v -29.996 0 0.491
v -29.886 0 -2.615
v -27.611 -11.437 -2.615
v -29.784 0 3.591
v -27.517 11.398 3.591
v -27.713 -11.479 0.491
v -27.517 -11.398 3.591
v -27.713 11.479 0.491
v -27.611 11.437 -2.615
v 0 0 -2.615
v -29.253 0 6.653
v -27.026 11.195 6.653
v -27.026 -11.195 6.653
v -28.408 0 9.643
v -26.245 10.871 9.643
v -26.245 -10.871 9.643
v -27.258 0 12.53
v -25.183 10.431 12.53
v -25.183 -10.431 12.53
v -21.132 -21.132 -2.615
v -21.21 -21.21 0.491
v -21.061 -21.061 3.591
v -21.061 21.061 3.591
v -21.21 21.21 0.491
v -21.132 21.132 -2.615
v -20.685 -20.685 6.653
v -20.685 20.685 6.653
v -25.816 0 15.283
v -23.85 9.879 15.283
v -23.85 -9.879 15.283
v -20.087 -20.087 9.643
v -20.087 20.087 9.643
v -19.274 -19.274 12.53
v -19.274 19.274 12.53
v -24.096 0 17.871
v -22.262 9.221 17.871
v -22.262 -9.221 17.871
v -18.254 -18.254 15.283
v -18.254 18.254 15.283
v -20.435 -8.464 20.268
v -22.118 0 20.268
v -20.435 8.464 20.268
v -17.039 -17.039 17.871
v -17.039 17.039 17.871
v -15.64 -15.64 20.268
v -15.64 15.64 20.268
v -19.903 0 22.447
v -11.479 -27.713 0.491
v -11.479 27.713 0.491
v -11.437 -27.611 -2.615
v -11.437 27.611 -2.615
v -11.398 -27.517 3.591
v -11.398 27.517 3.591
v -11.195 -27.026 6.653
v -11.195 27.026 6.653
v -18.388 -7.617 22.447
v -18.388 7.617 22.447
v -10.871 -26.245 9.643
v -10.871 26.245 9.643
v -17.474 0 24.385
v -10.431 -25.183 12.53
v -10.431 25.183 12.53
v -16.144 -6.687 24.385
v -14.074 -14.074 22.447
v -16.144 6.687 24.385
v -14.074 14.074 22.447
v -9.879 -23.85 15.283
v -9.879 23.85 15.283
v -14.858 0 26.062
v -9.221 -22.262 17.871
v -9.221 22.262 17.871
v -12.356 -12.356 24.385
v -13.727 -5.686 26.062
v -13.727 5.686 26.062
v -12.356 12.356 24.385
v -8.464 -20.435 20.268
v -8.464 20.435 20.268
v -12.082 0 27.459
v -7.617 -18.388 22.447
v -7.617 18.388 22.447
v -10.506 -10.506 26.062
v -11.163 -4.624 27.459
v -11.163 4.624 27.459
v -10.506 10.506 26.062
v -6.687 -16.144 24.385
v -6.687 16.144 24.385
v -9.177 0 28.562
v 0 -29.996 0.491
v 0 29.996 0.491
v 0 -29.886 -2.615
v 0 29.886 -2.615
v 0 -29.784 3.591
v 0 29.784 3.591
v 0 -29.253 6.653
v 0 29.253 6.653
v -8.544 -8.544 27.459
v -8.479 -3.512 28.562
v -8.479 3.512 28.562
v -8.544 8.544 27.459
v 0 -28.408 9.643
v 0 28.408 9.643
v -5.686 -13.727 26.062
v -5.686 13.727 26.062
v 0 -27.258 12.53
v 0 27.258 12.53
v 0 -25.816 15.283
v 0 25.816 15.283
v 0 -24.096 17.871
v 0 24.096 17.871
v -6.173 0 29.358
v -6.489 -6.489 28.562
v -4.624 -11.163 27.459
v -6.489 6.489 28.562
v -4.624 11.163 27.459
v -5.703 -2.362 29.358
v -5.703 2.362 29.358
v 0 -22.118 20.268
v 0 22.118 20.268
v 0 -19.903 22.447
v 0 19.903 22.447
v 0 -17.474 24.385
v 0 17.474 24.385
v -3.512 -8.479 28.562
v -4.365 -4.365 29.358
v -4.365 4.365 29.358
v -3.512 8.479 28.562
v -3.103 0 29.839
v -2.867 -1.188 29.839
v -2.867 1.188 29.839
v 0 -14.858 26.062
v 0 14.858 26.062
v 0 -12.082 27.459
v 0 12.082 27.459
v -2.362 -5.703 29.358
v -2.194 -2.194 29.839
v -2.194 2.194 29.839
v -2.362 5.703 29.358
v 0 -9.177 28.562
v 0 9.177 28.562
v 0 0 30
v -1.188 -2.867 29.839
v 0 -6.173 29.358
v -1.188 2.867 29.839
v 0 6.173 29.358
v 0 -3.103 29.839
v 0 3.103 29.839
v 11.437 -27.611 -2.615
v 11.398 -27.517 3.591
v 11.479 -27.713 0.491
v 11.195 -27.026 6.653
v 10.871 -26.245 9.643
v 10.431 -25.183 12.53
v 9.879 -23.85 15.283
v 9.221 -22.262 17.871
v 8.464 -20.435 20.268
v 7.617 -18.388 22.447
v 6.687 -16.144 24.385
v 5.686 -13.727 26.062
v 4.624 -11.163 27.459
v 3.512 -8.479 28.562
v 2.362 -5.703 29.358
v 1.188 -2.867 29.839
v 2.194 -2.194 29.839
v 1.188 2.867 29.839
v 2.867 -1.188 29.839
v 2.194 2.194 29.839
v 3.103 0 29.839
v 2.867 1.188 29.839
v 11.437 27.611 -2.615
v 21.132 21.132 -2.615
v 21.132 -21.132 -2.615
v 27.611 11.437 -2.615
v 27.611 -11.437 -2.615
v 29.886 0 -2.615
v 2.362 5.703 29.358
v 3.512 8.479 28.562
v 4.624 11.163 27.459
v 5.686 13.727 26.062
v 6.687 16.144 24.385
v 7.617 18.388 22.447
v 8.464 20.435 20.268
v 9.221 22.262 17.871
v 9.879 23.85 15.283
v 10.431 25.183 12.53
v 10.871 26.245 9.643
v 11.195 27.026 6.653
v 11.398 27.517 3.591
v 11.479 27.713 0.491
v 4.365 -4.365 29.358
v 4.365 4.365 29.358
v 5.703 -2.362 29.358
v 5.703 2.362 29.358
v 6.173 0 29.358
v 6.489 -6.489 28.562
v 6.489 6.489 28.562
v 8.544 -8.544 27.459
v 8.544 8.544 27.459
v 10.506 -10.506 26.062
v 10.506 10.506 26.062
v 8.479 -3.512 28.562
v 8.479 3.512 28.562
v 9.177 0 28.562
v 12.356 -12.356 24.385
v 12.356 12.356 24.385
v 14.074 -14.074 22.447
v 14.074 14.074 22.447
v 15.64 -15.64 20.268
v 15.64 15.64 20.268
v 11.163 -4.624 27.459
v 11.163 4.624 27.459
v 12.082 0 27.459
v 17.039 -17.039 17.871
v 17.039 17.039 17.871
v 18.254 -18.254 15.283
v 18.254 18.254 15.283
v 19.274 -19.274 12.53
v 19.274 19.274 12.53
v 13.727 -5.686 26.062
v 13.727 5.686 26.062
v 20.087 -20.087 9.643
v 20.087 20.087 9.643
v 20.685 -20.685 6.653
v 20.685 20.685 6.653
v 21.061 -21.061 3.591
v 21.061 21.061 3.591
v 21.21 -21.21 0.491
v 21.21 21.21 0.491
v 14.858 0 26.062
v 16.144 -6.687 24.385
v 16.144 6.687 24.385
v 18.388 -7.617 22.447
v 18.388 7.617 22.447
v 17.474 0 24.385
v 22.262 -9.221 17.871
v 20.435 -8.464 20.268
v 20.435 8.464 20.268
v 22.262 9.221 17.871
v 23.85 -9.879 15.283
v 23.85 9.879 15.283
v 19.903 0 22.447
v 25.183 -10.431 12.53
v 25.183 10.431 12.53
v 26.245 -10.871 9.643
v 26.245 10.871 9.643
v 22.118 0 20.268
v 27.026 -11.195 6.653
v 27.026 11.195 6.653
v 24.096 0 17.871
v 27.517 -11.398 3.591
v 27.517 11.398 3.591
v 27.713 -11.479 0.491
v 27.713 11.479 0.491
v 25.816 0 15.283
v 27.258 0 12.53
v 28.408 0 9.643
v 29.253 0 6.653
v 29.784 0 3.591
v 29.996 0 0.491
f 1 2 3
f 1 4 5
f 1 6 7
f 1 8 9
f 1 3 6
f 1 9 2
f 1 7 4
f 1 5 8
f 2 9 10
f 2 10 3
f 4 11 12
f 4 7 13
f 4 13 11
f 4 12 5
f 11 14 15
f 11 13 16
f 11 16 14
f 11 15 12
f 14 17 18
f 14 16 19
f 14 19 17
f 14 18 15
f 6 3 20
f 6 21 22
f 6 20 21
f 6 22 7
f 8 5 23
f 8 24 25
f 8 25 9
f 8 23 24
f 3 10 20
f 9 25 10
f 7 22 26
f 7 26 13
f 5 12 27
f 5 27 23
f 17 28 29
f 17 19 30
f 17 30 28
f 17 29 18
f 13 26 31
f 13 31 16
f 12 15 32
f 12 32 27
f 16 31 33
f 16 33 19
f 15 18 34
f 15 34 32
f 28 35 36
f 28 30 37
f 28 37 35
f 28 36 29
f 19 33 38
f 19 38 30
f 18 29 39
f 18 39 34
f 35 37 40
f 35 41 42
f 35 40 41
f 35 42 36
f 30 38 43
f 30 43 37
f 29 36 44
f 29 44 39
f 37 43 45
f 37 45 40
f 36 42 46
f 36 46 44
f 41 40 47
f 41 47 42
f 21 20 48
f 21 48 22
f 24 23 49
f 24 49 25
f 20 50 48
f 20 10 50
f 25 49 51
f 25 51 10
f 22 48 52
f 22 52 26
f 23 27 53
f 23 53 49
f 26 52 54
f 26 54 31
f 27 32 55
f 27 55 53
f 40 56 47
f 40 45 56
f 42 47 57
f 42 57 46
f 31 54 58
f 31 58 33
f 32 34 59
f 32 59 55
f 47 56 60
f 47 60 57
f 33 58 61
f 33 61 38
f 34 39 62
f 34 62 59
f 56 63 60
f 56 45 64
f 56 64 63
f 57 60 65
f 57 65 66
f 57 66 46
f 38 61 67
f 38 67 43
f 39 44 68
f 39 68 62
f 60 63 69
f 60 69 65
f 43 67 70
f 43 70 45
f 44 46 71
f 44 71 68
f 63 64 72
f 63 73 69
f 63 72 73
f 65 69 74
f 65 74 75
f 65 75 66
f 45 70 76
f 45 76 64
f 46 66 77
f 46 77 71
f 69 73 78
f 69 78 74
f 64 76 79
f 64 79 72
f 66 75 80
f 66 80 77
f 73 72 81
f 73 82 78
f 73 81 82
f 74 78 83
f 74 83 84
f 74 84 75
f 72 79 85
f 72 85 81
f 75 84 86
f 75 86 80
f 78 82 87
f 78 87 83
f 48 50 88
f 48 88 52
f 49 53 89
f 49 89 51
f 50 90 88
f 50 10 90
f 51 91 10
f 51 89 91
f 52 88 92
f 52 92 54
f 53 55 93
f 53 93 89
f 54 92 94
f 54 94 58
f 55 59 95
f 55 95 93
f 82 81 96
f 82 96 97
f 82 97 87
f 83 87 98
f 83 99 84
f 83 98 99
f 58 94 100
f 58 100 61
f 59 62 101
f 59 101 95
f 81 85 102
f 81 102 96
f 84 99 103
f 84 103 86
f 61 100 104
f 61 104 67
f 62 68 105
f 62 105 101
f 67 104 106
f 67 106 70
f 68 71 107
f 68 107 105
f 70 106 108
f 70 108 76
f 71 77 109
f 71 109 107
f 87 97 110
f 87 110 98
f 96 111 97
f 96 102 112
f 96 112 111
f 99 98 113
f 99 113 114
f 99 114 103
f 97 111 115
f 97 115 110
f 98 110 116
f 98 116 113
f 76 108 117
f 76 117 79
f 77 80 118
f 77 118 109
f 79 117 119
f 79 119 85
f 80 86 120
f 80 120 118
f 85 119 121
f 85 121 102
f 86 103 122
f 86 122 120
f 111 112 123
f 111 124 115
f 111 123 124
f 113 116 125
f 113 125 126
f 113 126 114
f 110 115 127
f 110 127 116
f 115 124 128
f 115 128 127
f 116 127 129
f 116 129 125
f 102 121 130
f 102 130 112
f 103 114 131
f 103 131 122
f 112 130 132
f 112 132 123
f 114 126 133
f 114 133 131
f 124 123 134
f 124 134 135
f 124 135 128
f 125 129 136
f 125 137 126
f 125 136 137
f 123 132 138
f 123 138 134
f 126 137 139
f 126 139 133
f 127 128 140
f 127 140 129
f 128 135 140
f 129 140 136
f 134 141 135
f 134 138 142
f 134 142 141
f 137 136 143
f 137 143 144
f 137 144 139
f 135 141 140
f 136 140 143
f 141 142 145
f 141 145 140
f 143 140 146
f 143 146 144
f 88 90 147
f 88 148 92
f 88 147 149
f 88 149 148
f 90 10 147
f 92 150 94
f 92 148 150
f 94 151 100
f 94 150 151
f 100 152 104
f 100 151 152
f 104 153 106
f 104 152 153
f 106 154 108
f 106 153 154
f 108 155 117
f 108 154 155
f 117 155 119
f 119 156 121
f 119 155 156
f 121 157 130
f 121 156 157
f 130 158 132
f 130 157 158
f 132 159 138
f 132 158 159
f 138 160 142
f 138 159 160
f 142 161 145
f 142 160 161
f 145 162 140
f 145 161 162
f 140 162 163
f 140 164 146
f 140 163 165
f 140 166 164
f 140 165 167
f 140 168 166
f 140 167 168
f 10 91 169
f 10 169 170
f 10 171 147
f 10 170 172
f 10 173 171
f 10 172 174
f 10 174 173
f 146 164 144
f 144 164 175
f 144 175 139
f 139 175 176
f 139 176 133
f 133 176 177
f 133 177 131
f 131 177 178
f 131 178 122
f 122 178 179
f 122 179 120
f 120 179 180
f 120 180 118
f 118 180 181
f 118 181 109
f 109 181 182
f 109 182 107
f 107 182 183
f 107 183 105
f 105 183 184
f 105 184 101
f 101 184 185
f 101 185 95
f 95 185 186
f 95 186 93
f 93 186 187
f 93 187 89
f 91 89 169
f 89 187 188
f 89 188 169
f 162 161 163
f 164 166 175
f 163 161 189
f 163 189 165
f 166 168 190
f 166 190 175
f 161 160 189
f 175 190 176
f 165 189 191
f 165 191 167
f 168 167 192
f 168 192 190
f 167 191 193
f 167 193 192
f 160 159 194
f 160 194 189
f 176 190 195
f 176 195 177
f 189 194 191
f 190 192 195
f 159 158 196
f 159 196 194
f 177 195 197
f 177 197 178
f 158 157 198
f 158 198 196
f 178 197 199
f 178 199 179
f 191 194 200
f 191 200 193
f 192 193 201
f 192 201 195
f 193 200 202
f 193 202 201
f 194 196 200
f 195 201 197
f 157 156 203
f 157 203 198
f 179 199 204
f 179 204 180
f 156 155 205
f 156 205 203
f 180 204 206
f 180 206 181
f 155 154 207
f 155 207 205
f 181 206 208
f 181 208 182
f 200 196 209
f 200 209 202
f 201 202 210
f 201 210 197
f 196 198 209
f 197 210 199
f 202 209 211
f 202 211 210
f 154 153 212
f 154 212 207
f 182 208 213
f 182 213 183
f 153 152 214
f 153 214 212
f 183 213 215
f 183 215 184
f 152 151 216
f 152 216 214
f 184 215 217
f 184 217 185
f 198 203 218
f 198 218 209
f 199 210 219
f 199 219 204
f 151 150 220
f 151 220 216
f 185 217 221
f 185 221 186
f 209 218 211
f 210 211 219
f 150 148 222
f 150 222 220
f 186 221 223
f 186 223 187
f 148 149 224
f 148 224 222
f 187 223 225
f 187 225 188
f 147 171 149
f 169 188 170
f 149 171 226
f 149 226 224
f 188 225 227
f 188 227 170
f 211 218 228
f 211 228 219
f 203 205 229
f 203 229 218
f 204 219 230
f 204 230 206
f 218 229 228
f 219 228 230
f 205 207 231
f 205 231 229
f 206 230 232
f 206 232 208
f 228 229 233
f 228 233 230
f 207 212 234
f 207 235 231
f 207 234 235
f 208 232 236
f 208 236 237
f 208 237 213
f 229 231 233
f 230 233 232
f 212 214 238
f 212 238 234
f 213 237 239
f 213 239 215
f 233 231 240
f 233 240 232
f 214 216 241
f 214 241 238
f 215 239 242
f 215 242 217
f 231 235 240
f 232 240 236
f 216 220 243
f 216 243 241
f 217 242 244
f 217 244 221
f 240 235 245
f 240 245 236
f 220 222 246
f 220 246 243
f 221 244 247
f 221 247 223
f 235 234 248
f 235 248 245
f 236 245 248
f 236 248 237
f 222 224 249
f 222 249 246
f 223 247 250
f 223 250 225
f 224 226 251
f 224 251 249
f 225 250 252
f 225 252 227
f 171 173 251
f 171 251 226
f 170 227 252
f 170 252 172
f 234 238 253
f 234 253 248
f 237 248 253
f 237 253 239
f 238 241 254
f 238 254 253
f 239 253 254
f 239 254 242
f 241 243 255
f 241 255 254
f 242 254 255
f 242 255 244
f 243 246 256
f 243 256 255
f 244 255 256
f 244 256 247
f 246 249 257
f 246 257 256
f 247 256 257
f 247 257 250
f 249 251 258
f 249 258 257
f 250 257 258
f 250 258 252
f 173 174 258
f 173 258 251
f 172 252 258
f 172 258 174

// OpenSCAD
// Start: lazy_union
default_5_default_5();
// End: lazy_union

// Modules.

// 'PartMaterial undef-default - default 5.0'
module default_5_default_5() {
  // 'None : _combine_solids_and_holes'
  union() {
    // 'default : _combine_solids_and_holes'
    union() {
      // 'cage'
      %multmatrix(m=[[1.0, 0.0, 0.0, 0.0], [-0.0, -1.0, -0.0, -0.0], [-0.0, -0.0, -1.0, -0.0], [0.0, 0.0, 0.0, 1.0]]) {
        // 'cage'
        color(c=[0.0, 1.0, 0.35, 0.4]) {
          // 'cage : _combine_solids_and_holes'
          union() {
            // 'cage'
            sphere(r=30.0, $fn=16);
          }
        }
      }
      // 'cap'
      multmatrix(m=[[0.0, -1.0, 0.0, 0.0], [1.0, 0.0, -6.123233995736766e-17, 0.0], [6.123233995736766e-17, 0.0, 1.0, 0.0], [0.0, 0.0, 0.0, 1.0]]) {
        // 'cap : _combine_solids_and_holes'
        union() {
          // 'cap'
          polyhedron(points=[[0.0, 0.0, 30.0], [3.103306385869395, 0.0, 29.839059795432938], [6.173316320767047, 0.0, 29.35796596502815], [9.177090602896605, 0.0, 28.56188033141773], [12.082400695762118, 0.0, 27.459344373583413], [14.858074519318485, 0.0, 26.06218758236497], [17.474330906034066, 0.0, 24.385400537748456], [19.903099133370333, 0.0, 22.446974069732278], [22.118320104303724, 0.0, 20.26770622846981], [24.09622594441935, 0.0, 17.870979134773002], [25.81559501568237, 0.0, 15.28250810522525], [27.257979610755765, 0.0, 12.53006574362732], [28.40790388485317, 0.0, 9.643183959094847], [29.253029901447253, 0.0, 6.652837107958736], [29.78429001027165, 0.0, 3.5911096591488763], [29.995984137286854, 0.0, 0.4908519487946045], [29.885840942752367, 0.0, -2.6146722824297437], [0.0, 0.0, -2.6146722824297473], [0.0, 0.0, 30.0], [2.8670812530163077, 1.1875839394250018, 29.839059795432938], [5.703400596474556, 2.3624258787065613, 29.35796596502815], [8.478526176017839, 3.511920531041884, 28.56188033141773], [11.162682706414751, 4.623734569464596, 27.459344373583413], [13.727070940925824, 5.685938955389079, 26.06218758236497], [16.144176668414282, 6.687136929404486, 24.385400537748456], [18.38806592286398, 7.616586291060803, 22.446974069732278], [20.43466323789912, 8.464314655664719, 20.26770622846981], [22.262009960816485, 9.221226451455124, 17.870979134773002], [23.85049985458933, 9.879200509148433, 15.28250810522525], [25.183089459987222, 10.43117719678165, 12.53006574362732], [26.24548096076371, 10.87123416495318, 9.643183959094847], [27.02627558988778, 11.194649889764438, 6.652837107958736], [27.51709593087036, 11.39795433168801, 3.5911096591488763], [27.71267580197255, 11.47896616682572, 0.4908519487946045], [27.610916758896728, 11.436816191089607, -2.6146722824297437], [0.0, 0.0, -2.6146722824297473], [0.0, 0.0, 30.0], [2.1943689895477663, 2.1943689895477663, 29.839059795432938], [4.365193832823968, 4.365193832823968, 29.35796596502815], [6.4891829968715316, 6.4891829968715316, 28.56188033141773], [8.543547464986455, 8.543547464986455, 27.459344373583413], [10.506245247985154, 10.506245247985154, 26.06218758236497], [12.356217880354356, 12.356217880354356, 24.385400537748456], [14.07361636383426, 14.07361636383426, 22.446974069732278], [15.64001413420791, 15.64001413420791, 20.26770622846981], [17.038604766302143, 17.038604766302143, 17.870979134773002], [18.254382295954642, 18.254382295954642, 15.28250810522525], [19.27430222421005, 19.27430222421005, 12.53006574362732], [20.087421476275345, 20.087421476275345, 9.643183959094847], [20.685015813566196, 20.685015813566196, 6.652837107958736], [21.060673439089832, 21.060673439089832, 3.5911096591488763], [21.210363791839647, 21.210363791839647, 0.4908519487946045], [21.132480792082763, 21.132480792082763, -2.6146722824297437], [0.0, 0.0, -2.6146722824297473], [0.0, 0.0, 30.0], [1.187583939425002, 2.8670812530163077, 29.839059795432938], [2.3624258787065617, 5.703400596474556, 29.35796596502815], [3.5119205310418846, 8.478526176017839, 28.56188033141773], [4.623734569464597, 11.162682706414751, 27.459344373583413], [5.68593895538908, 13.727070940925824, 26.06218758236497], [6.6871369294044865, 16.144176668414282, 24.385400537748456], [7.616586291060804, 18.38806592286398, 22.446974069732278], [8.46431465566472, 20.43466323789912, 20.26770622846981], [9.221226451455125, 22.262009960816485, 17.870979134773002], [9.879200509148435, 23.85049985458933, 15.28250810522525], [10.431177196781652, 25.183089459987222, 12.53006574362732], [10.871234164953181, 26.24548096076371, 9.643183959094847], [11.19464988976444, 27.02627558988778, 6.652837107958736], [11.397954331688013, 27.51709593087036, 3.5911096591488763], [11.478966166825721, 27.71267580197255, 0.4908519487946045], [11.436816191089608, 27.610916758896728, -2.6146722824297437], [0.0, 0.0, -2.6146722824297473], [0.0, 0.0, 30.0], [0.0, 3.103306385869395, 29.839059795432938], [0.0, 6.173316320767047, 29.35796596502815], [0.0, 9.177090602896605, 28.56188033141773], [0.0, 12.082400695762118, 27.459344373583413], [0.0, 14.858074519318485, 26.06218758236497], [0.0, 17.474330906034066, 24.385400537748456], [0.0, 19.903099133370333, 22.446974069732278], [0.0, 22.118320104303724, 20.26770622846981], [0.0, 24.09622594441935, 17.870979134773002], [0.0, 25.81559501568237, 15.28250810522525], [0.0, 27.257979610755765, 12.53006574362732], [0.0, 28.40790388485317, 9.643183959094847], [0.0, 29.253029901447253, 6.652837107958736], [0.0, 29.78429001027165, 3.5911096591488763], [0.0, 29.995984137286854, 0.4908519487946045], [0.0, 29.885840942752367, -2.6146722824297437], [0.0, 0.0, -2.6146722824297473], [0.0, 0.0, 30.0], [-1.1875839394250016, 2.8670812530163077, 29.839059795432938], [-2.362425878706561, 5.703400596474556, 29.35796596502815], [-3.5119205310418837, 8.478526176017839, 28.56188033141773], [-4.623734569464595, 11.162682706414751, 27.459344373583413], [-5.685938955389078, 13.727070940925824, 26.06218758236497], [-6.687136929404485, 16.144176668414282, 24.385400537748456], [-7.616586291060802, 18.38806592286398, 22.446974069732278], [-8.464314655664719, 20.43466323789912, 20.26770622846981], [-9.221226451455122, 22.262009960816485, 17.870979134773002], [-9.879200509148431, 23.85049985458933, 15.28250810522525], [-10.431177196781649, 25.183089459987222, 12.53006574362732], [-10.871234164953178, 26.24548096076371, 9.643183959094847], [-11.194649889764436, 27.02627558988778, 6.652837107958736], [-11.397954331688009, 27.51709593087036, 3.5911096591488763], [-11.478966166825717, 27.71267580197255, 0.4908519487946045], [-11.436816191089605, 27.610916758896728, -2.6146722824297437], [0.0, 0.0, -2.6146722824297473], [0.0, 0.0, 30.0], [-2.194368989547766, 2.1943689895477663, 29.839059795432938], [-4.365193832823967, 4.365193832823968, 29.35796596502815], [-6.489182996871531, 6.4891829968715316, 28.56188033141773], [-8.543547464986453, 8.543547464986455, 27.459344373583413], [-10.506245247985152, 10.506245247985154, 26.06218758236497], [-12.356217880354354, 12.356217880354356, 24.385400537748456], [-14.073616363834258, 14.07361636383426, 22.446974069732278], [-15.640014134207906, 15.64001413420791, 20.26770622846981], [-17.03860476630214, 17.038604766302143, 17.870979134773002], [-18.25438229595464, 18.254382295954642, 15.28250810522525], [-19.27430222421005, 19.27430222421005, 12.53006574362732], [-20.087421476275342, 20.087421476275345, 9.643183959094847], [-20.685015813566192, 20.685015813566196, 6.652837107958736], [-21.06067343908983, 21.060673439089832, 3.5911096591488763], [-21.210363791839644, 21.210363791839647, 0.4908519487946045], [-21.13248079208276, 21.132480792082763, -2.6146722824297437], [0.0, 0.0, -2.6146722824297473], [0.0, 0.0, 30.0], [-2.8670812530163077, 1.1875839394250023, 29.839059795432938], [-5.703400596474556, 2.362425878706562, 29.35796596502815], [-8.478526176017839, 3.511920531041885, 28.56188033141773], [-11.162682706414751, 4.623734569464598, 27.459344373583413], [-13.727070940925824, 5.685938955389081, 26.06218758236497], [-16.144176668414282, 6.687136929404487, 24.385400537748456], [-18.38806592286398, 7.616586291060805, 22.446974069732278], [-20.43466323789912, 8.464314655664722, 20.26770622846981], [-22.262009960816485, 9.221226451455125, 17.870979134773002], [-23.85049985458933, 9.879200509148436, 15.28250810522525], [-25.183089459987222, 10.431177196781652, 12.53006574362732], [-26.24548096076371, 10.871234164953183, 9.643183959094847], [-27.02627558988778, 11.194649889764442, 6.652837107958736], [-27.51709593087036, 11.397954331688014, 3.5911096591488763], [-27.71267580197255, 11.478966166825723, 0.4908519487946045], [-27.610916758896728, 11.43681619108961, -2.6146722824297437], [0.0, 0.0, -2.6146722824297473], [0.0, 0.0, 30.0], [-3.103306385869395, 0.0, 29.839059795432938], [-6.173316320767047, 0.0, 29.35796596502815], [-9.177090602896605, 0.0, 28.56188033141773], [-12.082400695762118, 0.0, 27.459344373583413], [-14.858074519318485, 0.0, 26.06218758236497], [-17.474330906034066, 0.0, 24.385400537748456], [-19.903099133370333, 0.0, 22.446974069732278], [-22.118320104303724, 0.0, 20.26770622846981], [-24.09622594441935, 0.0, 17.870979134773002], [-25.81559501568237, 0.0, 15.28250810522525], [-27.257979610755765, 0.0, 12.53006574362732], [-28.40790388485317, 0.0, 9.643183959094847], [-29.253029901447253, 0.0, 6.652837107958736], [-29.78429001027165, 0.0, 3.5911096591488763], [-29.995984137286854, 0.0, 0.4908519487946045], [-29.885840942752367, 0.0, -2.6146722824297437], [0.0, 0.0, -2.6146722824297473], [0.0, 0.0, 30.0], [-2.8670812530163077, -1.1875839394250014, 29.839059795432938], [-5.703400596474557, -2.3624258787065604, 29.35796596502815], [-8.478526176017839, -3.511920531041883, 28.56188033141773], [-11.162682706414753, -4.623734569464595, 27.459344373583413], [-13.727070940925826, -5.685938955389078, 26.06218758236497], [-16.144176668414286, -6.687136929404484, 24.385400537748456], [-18.38806592286398, -7.6165862910608, 22.446974069732278], [-20.434663237899123, -8.464314655664717, 20.26770622846981], [-22.26200996081649, -9.22122645145512, 17.870979134773002], [-23.850499854589334, -9.87920050914843, 15.28250810522525], [-25.183089459987226, -10.431177196781647, 12.53006574362732], [-26.245480960763715, -10.871234164953176, 9.643183959094847], [-27.026275589887785, -11.194649889764435, 6.652837107958736], [-27.517095930870365, -11.397954331688007, 3.5911096591488763], [-27.712675801972555, -11.478966166825716, 0.4908519487946045], [-27.61091675889673, -11.436816191089603, -2.6146722824297437], [0.0, 0.0, -2.6146722824297473], [0.0, 0.0, 30.0], [-2.1943689895477663, -2.194368989547766, 29.839059795432938], [-4.365193832823969, -4.365193832823967, 29.35796596502815], [-6.489182996871532, -6.489182996871531, 28.56188033141773], [-8.543547464986455, -8.543547464986453, 27.459344373583413], [-10.506245247985156, -10.506245247985152, 26.06218758236497], [-12.356217880354357, -12.356217880354354, 24.385400537748456], [-14.073616363834264, -14.073616363834258, 22.446974069732278], [-15.640014134207911, -15.640014134207906, 20.26770622846981], [-17.038604766302146, -17.03860476630214, 17.870979134773002], [-18.254382295954645, -18.25438229595464, 15.28250810522525], [-19.274302224210054, -19.27430222421005, 12.53006574362732], [-20.08742147627535, -20.087421476275342, 9.643183959094847], [-20.6850158135662, -20.685015813566192, 6.652837107958736], [-21.060673439089832, -21.06067343908983, 3.5911096591488763], [-21.21036379183965, -21.210363791839644, 0.4908519487946045], [-21.132480792082767, -21.13248079208276, -2.6146722824297437], [0.0, 0.0, -2.6146722824297473], [0.0, 0.0, 30.0], [-1.1875839394250036, -2.867081253016307, 29.839059795432938], [-2.362425878706565, -5.703400596474555, 29.35796596502815], [-3.511920531041889, -8.478526176017835, 28.56188033141773], [-4.623734569464603, -11.16268270641475, 27.459344373583413], [-5.685938955389088, -13.72707094092582, 26.06218758236497], [-6.687136929404495, -16.14417666841428, 24.385400537748456], [-7.6165862910608135, -18.388065922863976, 22.446974069732278], [-8.464314655664731, -20.434663237899116, 20.26770622846981], [-9.221226451455136, -22.26200996081648, 17.870979134773002], [-9.879200509148447, -23.850499854589327, 15.28250810522525], [-10.431177196781665, -25.183089459987215, 12.53006574362732], [-10.871234164953195, -26.245480960763707, 9.643183959094847], [-11.194649889764454, -27.026275589887774, 6.652837107958736], [-11.397954331688027, -27.517095930870354, 3.5911096591488763], [-11.478966166825737, -27.712675801972544, 0.4908519487946045], [-11.436816191089623, -27.610916758896725, -2.6146722824297437], [0.0, 0.0, -2.6146722824297473], [0.0, 0.0, 30.0], [0.0, -3.103306385869395, 29.839059795432938], [0.0, -6.173316320767047, 29.35796596502815], [0.0, -9.177090602896605, 28.56188033141773], [0.0, -12.082400695762118, 27.459344373583413], [0.0, -14.858074519318485, 26.06218758236497], [0.0, -17.474330906034066, 24.385400537748456], [0.0, -19.903099133370333, 22.446974069732278], [0.0, -22.118320104303724, 20.26770622846981], [0.0, -24.09622594441935, 17.870979134773002], [0.0, -25.81559501568237, 15.28250810522525], [0.0, -27.257979610755765, 12.53006574362732], [0.0, -28.40790388485317, 9.643183959094847], [0.0, -29.253029901447253, 6.652837107958736], [0.0, -29.78429001027165, 3.5911096591488763], [0.0, -29.995984137286854, 0.4908519487946045], [0.0, -29.885840942752367, -2.6146722824297437], [0.0, 0.0, -2.6146722824297473], [0.0, 0.0, 30.0], [1.1875839394250025, -2.8670812530163072, 29.839059795432938], [2.3624258787065626, -5.703400596474555, 29.35796596502815], [3.511920531041886, -8.478526176017837, 28.56188033141773], [4.623734569464599, -11.16268270641475, 27.459344373583413], [5.685938955389083, -13.727070940925822, 26.06218758236497], [6.687136929404489, -16.144176668414282, 24.385400537748456], [7.616586291060807, -18.388065922863976, 22.446974069732278], [8.464314655664724, -20.434663237899116, 20.26770622846981], [9.221226451455129, -22.262009960816485, 17.870979134773002], [9.879200509148438, -23.85049985458933, 15.28250810522525], [10.431177196781656, -25.18308945998722, 12.53006574362732], [10.871234164953185, -26.24548096076371, 9.643183959094847], [11.194649889764445, -27.026275589887778, 6.652837107958736], [11.397954331688018, -27.517095930870358, 3.5911096591488763], [11.478966166825726, -27.712675801972548, 0.4908519487946045], [11.436816191089614, -27.610916758896725, -2.6146722824297437], [0.0, 0.0, -2.6146722824297473], [0.0, 0.0, 30.0], [2.1943689895477654, -2.1943689895477663, 29.839059795432938], [4.365193832823966, -4.365193832823969, 29.35796596502815], [6.48918299687153, -6.489182996871532, 28.56188033141773], [8.543547464986451, -8.543547464986455, 27.459344373583413], [10.50624524798515, -10.506245247985156, 26.06218758236497], [12.356217880354352, -12.356217880354357, 24.385400537748456], [14.073616363834256, -14.073616363834264, 22.446974069732278], [15.640014134207904, -15.640014134207911, 20.26770622846981], [17.038604766302136, -17.038604766302146, 17.870979134773002], [18.254382295954635, -18.254382295954645, 15.28250810522525], [19.274302224210047, -19.274302224210054, 12.53006574362732], [20.08742147627534, -20.08742147627535, 9.643183959094847], [20.68501581356619, -20.6850158135662, 6.652837107958736], [21.060673439089825, -21.060673439089832, 3.5911096591488763], [21.21036379183964, -21.21036379183965, 0.4908519487946045], [21.132480792082756, -21.132480792082767, -2.6146722824297437], [0.0, 0.0, -2.6146722824297473], [0.0, 0.0, 30.0], [2.867081253016307, -1.1875839394250036, 29.839059795432938], [5.703400596474555, -2.362425878706565, 29.35796596502815], [8.478526176017835, -3.5119205310418895, 28.56188033141773], [11.16268270641475, -4.623734569464603, 27.459344373583413], [13.72707094092582, -5.685938955389089, 26.06218758236497], [16.14417666841428, -6.687136929404496, 24.385400537748456], [18.388065922863976, -7.616586291060815, 22.446974069732278], [20.434663237899116, -8.464314655664733, 20.26770622846981], [22.26200996081648, -9.221226451455138, 17.870979134773002], [23.850499854589327, -9.879200509148449, 15.28250810522525], [25.183089459987215, -10.431177196781666, 12.53006574362732], [26.245480960763707, -10.871234164953197, 9.643183959094847], [27.026275589887774, -11.194649889764456, 6.652837107958736], [27.517095930870354, -11.397954331688029, 3.5911096591488763], [27.712675801972544, -11.478966166825739, 0.4908519487946045], [27.610916758896725, -11.436816191089624, -2.6146722824297437], [0.0, 0.0, -2.6146722824297473], [0.0, 0.0, 30.0], [3.103306385869395, 0.0, 29.839059795432938], [6.173316320767047, 0.0, 29.35796596502815], [9.177090602896605, 0.0, 28.56188033141773], [12.082400695762118, 0.0, 27.459344373583413], [14.858074519318485, 0.0, 26.06218758236497], [17.474330906034066, 0.0, 24.385400537748456], [19.903099133370333, 0.0, 22.446974069732278], [22.118320104303724, 0.0, 20.26770622846981], [24.09622594441935, 0.0, 17.870979134773002], [25.81559501568237, 0.0, 15.28250810522525], [27.257979610755765, 0.0, 12.53006574362732], [28.40790388485317, 0.0, 9.643183959094847], [29.253029901447253, 0.0, 6.652837107958736], [29.78429001027165, 0.0, 3.5911096591488763], [29.995984137286854, 0.0, 0.4908519487946045], [29.885840942752367, 0.0, -2.6146722824297437], [0.0, 0.0, -2.6146722824297473]], faces=[[0, 18, 19, 1], [1, 19, 20, 2], [2, 20, 21, 3], [3, 21, 22, 4], [4, 22, 23, 5], [5, 23, 24, 6], [6, 24, 25, 7], [7, 25, 26, 8], [8, 26, 27, 9], [9, 27, 28, 10], [10, 28, 29, 11], [11, 29, 30, 12], [12, 30, 31, 13], [13, 31, 32, 14], [14, 32, 33, 15], [15, 33, 34, 16], [16, 34, 35, 17], [17, 35, 18, 0], [18, 36, 37, 19], [19, 37, 38, 20], [20, 38, 39, 21], [21, 39, 40, 22], [22, 40, 41, 23], [23, 41, 42, 24], [24, 42, 43, 25], [25, 43, 44, 26], [26, 44, 45, 27], [27, 45, 46, 28], [28, 46, 47, 29], [29, 47, 48, 30], [30, 48, 49, 31], [31, 49, 50, 32], [32, 50, 51, 33], [33, 51, 52, 34], [34, 52, 53, 35], [35, 53, 36, 18], [36, 54, 55, 37], [37, 55, 56, 38], [38, 56, 57, 39], [39, 57, 58, 40], [40, 58, 59, 41], [41, 59, 60, 42], [42, 60, 61, 43], [43, 61, 62, 44], [44, 62, 63, 45], [45, 63, 64, 46], [46, 64, 65, 47], [47, 65, 66, 48], [48, 66, 67, 49], [49, 67, 68, 50], [50, 68, 69, 51], [51, 69, 70, 52], [52, 70, 71, 53], [53, 71, 54, 36], [54, 72, 73, 55], [55, 73, 74, 56], [56, 74, 75, 57], [57, 75, 76, 58], [58, 76, 77, 59], [59, 77, 78, 60], [60, 78, 79, 61], [61, 79, 80, 62], [62, 80, 81, 63], [63, 81, 82, 64], [64, 82, 83, 65], [65, 83, 84, 66], [66, 84, 85, 67], [67, 85, 86, 68], [68, 86, 87, 69], [69, 87, 88, 70], [70, 88, 89, 71], [71, 89, 72, 54], [72, 90, 91, 73], [73, 91, 92, 74], [74, 92, 93, 75], [75, 93, 94, 76], [76, 94, 95, 77], [77, 95, 96, 78], [78, 96, 97, 79], [79, 97, 98, 80], [80, 98, 99, 81], [81, 99, 100, 82], [82, 100, 101, 83], [83, 101, 102, 84], [84, 102, 103, 85], [85, 103, 104, 86], [86, 104, 105, 87], [87, 105, 106, 88], [88, 106, 107, 89], [89, 107, 90, 72], [90, 108, 109, 91], [91, 109, 110, 92], [92, 110, 111, 93], [93, 111, 112, 94], [94, 112, 113, 95], [95, 113, 114, 96], [96, 114, 115, 97], [97, 115, 116, 98], [98, 116, 117, 99], [99, 117, 118, 100], [100, 118, 119, 101], [101, 119, 120, 102], [102, 120, 121, 103], [103, 121, 122, 104], [104, 122, 123, 105], [105, 123, 124, 106], [106, 124, 125, 107], [107, 125, 108, 90], [108, 126, 127, 109], [109, 127, 128, 110], [110, 128, 129, 111], [111, 129, 130, 112], [112, 130, 131, 113], [113, 131, 132, 114], [114, 132, 133, 115], [115, 133, 134, 116], [116, 134, 135, 117], [117, 135, 136, 118], [118, 136, 137, 119], [119, 137, 138, 120], [120, 138, 139, 121], [121, 139, 140, 122], [122, 140, 141, 123], [123, 141, 142, 124], [124, 142, 143, 125], [125, 143, 126, 108], [126, 144, 145, 127], [127, 145, 146, 128], [128, 146, 147, 129], [129, 147, 148, 130], [130, 148, 149, 131], [131, 149, 150, 132], [132, 150, 151, 133], [133, 151, 152, 134], [134, 152, 153, 135], [135, 153, 154, 136], [136, 154, 155, 137], [137, 155, 156, 138], [138, 156, 157, 139], [139, 157, 158, 140], [140, 158, 159, 141], [141, 159, 160, 142], [142, 160, 161, 143], [143, 161, 144, 126], [144, 162, 163, 145], [145, 163, 164, 146], [146, 164, 165, 147], [147, 165, 166, 148], [148, 166, 167, 149], [149, 167, 168, 150], [150, 168, 169, 151], [151, 169, 170, 152], [152, 170, 171, 153], [153, 171, 172, 154], [154, 172, 173, 155], [155, 173, 174, 156], [156, 174, 175, 157], [157, 175, 176, 158], [158, 176, 177, 159], [159, 177, 178, 160], [160, 178, 179, 161], [161, 179, 162, 144], [162, 180, 181, 163], [163, 181, 182, 164], [164, 182, 183, 165], [165, 183, 184, 166], [166, 184, 185, 167], [167, 185, 186, 168], [168, 186, 187, 169], [169, 187, 188, 170], [170, 188, 189, 171], [171, 189, 190, 172], [172, 190, 191, 173], [173, 191, 192, 174], [174, 192, 193, 175], [175, 193, 194, 176], [176, 194, 195, 177], [177, 195, 196, 178], [178, 196, 197, 179], [179, 197, 180, 162], [180, 198, 199, 181], [181, 199, 200, 182], [182, 200, 201, 183], [183, 201, 202, 184], [184, 202, 203, 185], [185, 203, 204, 186], [186, 204, 205, 187], [187, 205, 206, 188], [188, 206, 207, 189], [189, 207, 208, 190], [190, 208, 209, 191], [191, 209, 210, 192], [192, 210, 211, 193], [193, 211, 212, 194], [194, 212, 213, 195], [195, 213, 214, 196], [196, 214, 215, 197], [197, 215, 198, 180], [198, 216, 217, 199], [199, 217, 218, 200], [200, 218, 219, 201], [201, 219, 220, 202], [202, 220, 221, 203], [203, 221, 222, 204], [204, 222, 223, 205], [205, 223, 224, 206], [206, 224, 225, 207], [207, 225, 226, 208], [208, 226, 227, 209], [209, 227, 228, 210], [210, 228, 229, 211], [211, 229, 230, 212], [212, 230, 231, 213], [213, 231, 232, 214], [214, 232, 233, 215], [215, 233, 216, 198], [216, 234, 235, 217], [217, 235, 236, 218], [218, 236, 237, 219], [219, 237, 238, 220], [220, 238, 239, 221], [221, 239, 240, 222], [222, 240, 241, 223], [223, 241, 242, 224], [224, 242, 243, 225], [225, 243, 244, 226], [226, 244, 245, 227], [227, 245, 246, 228], [228, 246, 247, 229], [229, 247, 248, 230], [230, 248, 249, 231], [231, 249, 250, 232], [232, 250, 251, 233], [233, 251, 234, 216], [234, 252, 253, 235], [235, 253, 254, 236], [236, 254, 255, 237], [237, 255, 256, 238], [238, 256, 257, 239], [239, 257, 258, 240], [240, 258, 259, 241], [241, 259, 260, 242], [242, 260, 261, 243], [243, 261, 262, 244], [244, 262, 263, 245], [245, 263, 264, 246], [246, 264, 265, 247], [247, 265, 266, 248], [248, 266, 267, 249], [249, 267, 268, 250], [250, 268, 269, 251], [251, 269, 252, 234], [252, 270, 271, 253], [253, 271, 272, 254], [254, 272, 273, 255], [255, 273, 274, 256], [256, 274, 275, 257], [257, 275, 276, 258], [258, 276, 277, 259], [259, 277, 278, 260], [260, 278, 279, 261], [261, 279, 280, 262], [262, 280, 281, 263], [263, 281, 282, 264], [264, 282, 283, 265], [265, 283, 284, 266], [266, 284, 285, 267], [267, 285, 286, 268], [268, 286, 287, 269], [269, 287, 270, 252], [270, 288, 289, 271], [271, 289, 290, 272], [272, 290, 291, 273], [273, 291, 292, 274], [274, 292, 293, 275], [275, 293, 294, 276], [276, 294, 295, 277], [277, 295, 296, 278], [278, 296, 297, 279], [279, 297, 298, 280], [280, 298, 299, 281], [281, 299, 300, 282], [282, 300, 301, 283], [283, 301, 302, 284], [284, 302, 303, 285], [285, 303, 304, 286], [286, 304, 305, 287], [287, 305, 288, 270], [288, 0, 1, 289], [289, 1, 2, 290], [290, 2, 3, 291], [291, 3, 4, 292], [292, 4, 5, 293], [293, 5, 6, 294], [294, 6, 7, 295], [295, 7, 8, 296], [296, 8, 9, 297], [297, 9, 10, 298], [298, 10, 11, 299], [299, 11, 12, 300], [300, 12, 13, 301], [301, 13, 14, 302], [302, 14, 15, 303], [303, 15, 16, 304], [304, 16, 17, 305], [305, 17, 0, 288]], convexity=10);
        }
      }
    }
  }
} // end module default_5_default_5
